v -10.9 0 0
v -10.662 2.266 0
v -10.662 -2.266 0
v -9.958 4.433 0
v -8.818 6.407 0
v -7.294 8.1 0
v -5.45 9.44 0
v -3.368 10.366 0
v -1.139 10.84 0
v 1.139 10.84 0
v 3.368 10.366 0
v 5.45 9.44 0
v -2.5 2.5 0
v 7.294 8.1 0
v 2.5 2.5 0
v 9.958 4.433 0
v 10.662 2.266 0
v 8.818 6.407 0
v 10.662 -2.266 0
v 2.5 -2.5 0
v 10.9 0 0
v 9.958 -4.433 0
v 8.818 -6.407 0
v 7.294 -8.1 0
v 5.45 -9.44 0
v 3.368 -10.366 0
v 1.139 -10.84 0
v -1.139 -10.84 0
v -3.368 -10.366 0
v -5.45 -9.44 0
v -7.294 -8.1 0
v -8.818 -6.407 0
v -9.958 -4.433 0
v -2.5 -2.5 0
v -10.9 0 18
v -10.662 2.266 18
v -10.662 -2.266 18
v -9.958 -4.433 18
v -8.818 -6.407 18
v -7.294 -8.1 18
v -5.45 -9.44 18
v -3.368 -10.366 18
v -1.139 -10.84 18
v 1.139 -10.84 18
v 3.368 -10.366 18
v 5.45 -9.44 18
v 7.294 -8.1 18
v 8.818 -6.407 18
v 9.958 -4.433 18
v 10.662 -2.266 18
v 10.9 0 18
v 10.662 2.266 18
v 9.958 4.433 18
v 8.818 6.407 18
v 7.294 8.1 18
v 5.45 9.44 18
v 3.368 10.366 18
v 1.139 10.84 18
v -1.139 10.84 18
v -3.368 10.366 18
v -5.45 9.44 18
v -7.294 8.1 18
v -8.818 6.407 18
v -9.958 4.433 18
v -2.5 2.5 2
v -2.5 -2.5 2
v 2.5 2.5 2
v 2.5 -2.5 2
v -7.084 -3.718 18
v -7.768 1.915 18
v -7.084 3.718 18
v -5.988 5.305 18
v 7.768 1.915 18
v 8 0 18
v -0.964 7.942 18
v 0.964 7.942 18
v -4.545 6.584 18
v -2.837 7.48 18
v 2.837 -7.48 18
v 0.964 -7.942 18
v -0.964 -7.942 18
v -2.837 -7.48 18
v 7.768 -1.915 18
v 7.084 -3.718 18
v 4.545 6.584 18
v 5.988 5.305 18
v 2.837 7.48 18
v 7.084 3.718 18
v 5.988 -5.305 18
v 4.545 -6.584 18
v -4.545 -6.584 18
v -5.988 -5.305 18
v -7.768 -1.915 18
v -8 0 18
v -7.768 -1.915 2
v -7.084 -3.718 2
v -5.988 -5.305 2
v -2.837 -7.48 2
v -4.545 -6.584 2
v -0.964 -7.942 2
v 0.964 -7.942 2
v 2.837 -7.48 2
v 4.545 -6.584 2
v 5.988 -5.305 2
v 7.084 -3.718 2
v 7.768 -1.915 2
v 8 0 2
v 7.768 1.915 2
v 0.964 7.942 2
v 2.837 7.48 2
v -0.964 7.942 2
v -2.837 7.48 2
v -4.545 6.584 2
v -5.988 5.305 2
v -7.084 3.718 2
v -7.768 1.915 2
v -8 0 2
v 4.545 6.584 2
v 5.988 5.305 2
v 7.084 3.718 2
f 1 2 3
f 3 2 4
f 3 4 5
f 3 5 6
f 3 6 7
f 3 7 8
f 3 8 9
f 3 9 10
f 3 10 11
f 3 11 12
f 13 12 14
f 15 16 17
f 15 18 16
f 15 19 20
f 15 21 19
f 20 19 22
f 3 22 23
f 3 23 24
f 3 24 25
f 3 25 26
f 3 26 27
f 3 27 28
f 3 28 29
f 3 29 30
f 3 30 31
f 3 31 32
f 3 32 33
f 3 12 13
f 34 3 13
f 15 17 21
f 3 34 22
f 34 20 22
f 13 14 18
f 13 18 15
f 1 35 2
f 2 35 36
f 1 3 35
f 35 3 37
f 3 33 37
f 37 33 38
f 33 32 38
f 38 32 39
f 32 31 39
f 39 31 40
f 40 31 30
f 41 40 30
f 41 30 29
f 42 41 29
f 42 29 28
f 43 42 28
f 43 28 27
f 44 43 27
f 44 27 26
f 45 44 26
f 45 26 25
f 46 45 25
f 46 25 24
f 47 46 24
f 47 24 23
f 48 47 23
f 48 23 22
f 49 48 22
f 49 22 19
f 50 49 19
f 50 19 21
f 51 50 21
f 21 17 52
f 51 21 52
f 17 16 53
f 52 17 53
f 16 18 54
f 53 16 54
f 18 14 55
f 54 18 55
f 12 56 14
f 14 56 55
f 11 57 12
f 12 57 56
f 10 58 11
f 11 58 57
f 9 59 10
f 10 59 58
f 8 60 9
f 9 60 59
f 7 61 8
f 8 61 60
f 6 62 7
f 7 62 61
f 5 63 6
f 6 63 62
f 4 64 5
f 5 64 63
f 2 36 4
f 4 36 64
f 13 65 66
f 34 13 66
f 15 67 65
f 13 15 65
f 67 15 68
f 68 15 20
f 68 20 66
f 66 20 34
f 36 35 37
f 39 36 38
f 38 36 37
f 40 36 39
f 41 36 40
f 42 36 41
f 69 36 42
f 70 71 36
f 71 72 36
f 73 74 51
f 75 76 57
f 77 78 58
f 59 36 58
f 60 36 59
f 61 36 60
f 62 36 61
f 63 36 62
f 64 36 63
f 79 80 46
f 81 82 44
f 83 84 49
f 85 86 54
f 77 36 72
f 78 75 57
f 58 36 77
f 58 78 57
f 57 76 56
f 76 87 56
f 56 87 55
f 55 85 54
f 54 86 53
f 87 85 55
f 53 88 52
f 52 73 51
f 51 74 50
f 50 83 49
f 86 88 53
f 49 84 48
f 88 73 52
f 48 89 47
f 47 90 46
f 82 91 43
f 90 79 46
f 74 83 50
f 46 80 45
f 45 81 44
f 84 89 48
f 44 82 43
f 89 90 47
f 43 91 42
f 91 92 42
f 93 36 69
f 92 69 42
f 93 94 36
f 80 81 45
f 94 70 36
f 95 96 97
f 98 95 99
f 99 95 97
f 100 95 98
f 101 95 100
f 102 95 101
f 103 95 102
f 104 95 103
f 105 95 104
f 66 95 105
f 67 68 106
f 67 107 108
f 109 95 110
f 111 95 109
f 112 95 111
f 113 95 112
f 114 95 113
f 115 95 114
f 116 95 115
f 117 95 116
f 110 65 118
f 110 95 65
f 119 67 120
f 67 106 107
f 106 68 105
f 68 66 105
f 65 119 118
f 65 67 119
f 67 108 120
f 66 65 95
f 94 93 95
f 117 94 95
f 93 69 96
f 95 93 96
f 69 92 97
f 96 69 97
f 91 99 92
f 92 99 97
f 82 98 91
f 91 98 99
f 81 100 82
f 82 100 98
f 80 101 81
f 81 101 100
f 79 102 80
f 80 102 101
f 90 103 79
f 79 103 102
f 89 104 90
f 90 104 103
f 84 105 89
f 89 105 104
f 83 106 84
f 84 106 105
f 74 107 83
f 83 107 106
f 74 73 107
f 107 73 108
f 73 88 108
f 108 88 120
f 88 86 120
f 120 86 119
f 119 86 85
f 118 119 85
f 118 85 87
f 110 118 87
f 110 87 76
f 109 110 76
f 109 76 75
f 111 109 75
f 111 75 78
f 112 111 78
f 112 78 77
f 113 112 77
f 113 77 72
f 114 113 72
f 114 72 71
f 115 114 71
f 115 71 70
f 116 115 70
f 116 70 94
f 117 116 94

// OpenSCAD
//Ancho de la pared
pared  = 3;
//Radio del centro hueco
radioC = 11;
//Alto de la capa de apertura
aperH = 2;
//Ancho de la apertura
aperW = 5;
//Ancho del lente macro
macroW = 10.1;
//Profundidad del macro
macroH = 3;
//Profundidad parte de atras y delante
profDelante = 6;
profAtras = 6;

h = 18; //Altura total

//translate([0,0,14])
//rotate([0,90,0])
CrearFrente();

module CrearFrente(){
	difference(){
		cylinder(r=radioC-0.1,h);


		//Ranura
		translate([-(aperW/2),-(aperW/2),-0.5])
		cube([aperW,aperW,aperH+1]);

		translate([0,0,aperH])
		cylinder(r=radioC-pared,h);

	}
}


//cilindroPared(profDelante+aperH+profAtras);
//apertura();

module cilindroPared(h){
	translate([0, 0, h/2]){
		difference(){
			cylinder(r=radioC+pared,h, center=true);
			cylinder(r=radioC,h+2, center=true);
		}
	}
}

module apertura(){
	//Crea apertura
	translate([0, 0, (aperH/2)+profDelante ]){
		difference(){
			cylinder(r=radioC+1,aperH,center=true);
			translate([0, 0, aperH-macroH]){
				cylinder(r=macroW,aperH,center=true);
			}
			cube([aperW,aperW,aperH+2],center=true);		
		}
	}
}
